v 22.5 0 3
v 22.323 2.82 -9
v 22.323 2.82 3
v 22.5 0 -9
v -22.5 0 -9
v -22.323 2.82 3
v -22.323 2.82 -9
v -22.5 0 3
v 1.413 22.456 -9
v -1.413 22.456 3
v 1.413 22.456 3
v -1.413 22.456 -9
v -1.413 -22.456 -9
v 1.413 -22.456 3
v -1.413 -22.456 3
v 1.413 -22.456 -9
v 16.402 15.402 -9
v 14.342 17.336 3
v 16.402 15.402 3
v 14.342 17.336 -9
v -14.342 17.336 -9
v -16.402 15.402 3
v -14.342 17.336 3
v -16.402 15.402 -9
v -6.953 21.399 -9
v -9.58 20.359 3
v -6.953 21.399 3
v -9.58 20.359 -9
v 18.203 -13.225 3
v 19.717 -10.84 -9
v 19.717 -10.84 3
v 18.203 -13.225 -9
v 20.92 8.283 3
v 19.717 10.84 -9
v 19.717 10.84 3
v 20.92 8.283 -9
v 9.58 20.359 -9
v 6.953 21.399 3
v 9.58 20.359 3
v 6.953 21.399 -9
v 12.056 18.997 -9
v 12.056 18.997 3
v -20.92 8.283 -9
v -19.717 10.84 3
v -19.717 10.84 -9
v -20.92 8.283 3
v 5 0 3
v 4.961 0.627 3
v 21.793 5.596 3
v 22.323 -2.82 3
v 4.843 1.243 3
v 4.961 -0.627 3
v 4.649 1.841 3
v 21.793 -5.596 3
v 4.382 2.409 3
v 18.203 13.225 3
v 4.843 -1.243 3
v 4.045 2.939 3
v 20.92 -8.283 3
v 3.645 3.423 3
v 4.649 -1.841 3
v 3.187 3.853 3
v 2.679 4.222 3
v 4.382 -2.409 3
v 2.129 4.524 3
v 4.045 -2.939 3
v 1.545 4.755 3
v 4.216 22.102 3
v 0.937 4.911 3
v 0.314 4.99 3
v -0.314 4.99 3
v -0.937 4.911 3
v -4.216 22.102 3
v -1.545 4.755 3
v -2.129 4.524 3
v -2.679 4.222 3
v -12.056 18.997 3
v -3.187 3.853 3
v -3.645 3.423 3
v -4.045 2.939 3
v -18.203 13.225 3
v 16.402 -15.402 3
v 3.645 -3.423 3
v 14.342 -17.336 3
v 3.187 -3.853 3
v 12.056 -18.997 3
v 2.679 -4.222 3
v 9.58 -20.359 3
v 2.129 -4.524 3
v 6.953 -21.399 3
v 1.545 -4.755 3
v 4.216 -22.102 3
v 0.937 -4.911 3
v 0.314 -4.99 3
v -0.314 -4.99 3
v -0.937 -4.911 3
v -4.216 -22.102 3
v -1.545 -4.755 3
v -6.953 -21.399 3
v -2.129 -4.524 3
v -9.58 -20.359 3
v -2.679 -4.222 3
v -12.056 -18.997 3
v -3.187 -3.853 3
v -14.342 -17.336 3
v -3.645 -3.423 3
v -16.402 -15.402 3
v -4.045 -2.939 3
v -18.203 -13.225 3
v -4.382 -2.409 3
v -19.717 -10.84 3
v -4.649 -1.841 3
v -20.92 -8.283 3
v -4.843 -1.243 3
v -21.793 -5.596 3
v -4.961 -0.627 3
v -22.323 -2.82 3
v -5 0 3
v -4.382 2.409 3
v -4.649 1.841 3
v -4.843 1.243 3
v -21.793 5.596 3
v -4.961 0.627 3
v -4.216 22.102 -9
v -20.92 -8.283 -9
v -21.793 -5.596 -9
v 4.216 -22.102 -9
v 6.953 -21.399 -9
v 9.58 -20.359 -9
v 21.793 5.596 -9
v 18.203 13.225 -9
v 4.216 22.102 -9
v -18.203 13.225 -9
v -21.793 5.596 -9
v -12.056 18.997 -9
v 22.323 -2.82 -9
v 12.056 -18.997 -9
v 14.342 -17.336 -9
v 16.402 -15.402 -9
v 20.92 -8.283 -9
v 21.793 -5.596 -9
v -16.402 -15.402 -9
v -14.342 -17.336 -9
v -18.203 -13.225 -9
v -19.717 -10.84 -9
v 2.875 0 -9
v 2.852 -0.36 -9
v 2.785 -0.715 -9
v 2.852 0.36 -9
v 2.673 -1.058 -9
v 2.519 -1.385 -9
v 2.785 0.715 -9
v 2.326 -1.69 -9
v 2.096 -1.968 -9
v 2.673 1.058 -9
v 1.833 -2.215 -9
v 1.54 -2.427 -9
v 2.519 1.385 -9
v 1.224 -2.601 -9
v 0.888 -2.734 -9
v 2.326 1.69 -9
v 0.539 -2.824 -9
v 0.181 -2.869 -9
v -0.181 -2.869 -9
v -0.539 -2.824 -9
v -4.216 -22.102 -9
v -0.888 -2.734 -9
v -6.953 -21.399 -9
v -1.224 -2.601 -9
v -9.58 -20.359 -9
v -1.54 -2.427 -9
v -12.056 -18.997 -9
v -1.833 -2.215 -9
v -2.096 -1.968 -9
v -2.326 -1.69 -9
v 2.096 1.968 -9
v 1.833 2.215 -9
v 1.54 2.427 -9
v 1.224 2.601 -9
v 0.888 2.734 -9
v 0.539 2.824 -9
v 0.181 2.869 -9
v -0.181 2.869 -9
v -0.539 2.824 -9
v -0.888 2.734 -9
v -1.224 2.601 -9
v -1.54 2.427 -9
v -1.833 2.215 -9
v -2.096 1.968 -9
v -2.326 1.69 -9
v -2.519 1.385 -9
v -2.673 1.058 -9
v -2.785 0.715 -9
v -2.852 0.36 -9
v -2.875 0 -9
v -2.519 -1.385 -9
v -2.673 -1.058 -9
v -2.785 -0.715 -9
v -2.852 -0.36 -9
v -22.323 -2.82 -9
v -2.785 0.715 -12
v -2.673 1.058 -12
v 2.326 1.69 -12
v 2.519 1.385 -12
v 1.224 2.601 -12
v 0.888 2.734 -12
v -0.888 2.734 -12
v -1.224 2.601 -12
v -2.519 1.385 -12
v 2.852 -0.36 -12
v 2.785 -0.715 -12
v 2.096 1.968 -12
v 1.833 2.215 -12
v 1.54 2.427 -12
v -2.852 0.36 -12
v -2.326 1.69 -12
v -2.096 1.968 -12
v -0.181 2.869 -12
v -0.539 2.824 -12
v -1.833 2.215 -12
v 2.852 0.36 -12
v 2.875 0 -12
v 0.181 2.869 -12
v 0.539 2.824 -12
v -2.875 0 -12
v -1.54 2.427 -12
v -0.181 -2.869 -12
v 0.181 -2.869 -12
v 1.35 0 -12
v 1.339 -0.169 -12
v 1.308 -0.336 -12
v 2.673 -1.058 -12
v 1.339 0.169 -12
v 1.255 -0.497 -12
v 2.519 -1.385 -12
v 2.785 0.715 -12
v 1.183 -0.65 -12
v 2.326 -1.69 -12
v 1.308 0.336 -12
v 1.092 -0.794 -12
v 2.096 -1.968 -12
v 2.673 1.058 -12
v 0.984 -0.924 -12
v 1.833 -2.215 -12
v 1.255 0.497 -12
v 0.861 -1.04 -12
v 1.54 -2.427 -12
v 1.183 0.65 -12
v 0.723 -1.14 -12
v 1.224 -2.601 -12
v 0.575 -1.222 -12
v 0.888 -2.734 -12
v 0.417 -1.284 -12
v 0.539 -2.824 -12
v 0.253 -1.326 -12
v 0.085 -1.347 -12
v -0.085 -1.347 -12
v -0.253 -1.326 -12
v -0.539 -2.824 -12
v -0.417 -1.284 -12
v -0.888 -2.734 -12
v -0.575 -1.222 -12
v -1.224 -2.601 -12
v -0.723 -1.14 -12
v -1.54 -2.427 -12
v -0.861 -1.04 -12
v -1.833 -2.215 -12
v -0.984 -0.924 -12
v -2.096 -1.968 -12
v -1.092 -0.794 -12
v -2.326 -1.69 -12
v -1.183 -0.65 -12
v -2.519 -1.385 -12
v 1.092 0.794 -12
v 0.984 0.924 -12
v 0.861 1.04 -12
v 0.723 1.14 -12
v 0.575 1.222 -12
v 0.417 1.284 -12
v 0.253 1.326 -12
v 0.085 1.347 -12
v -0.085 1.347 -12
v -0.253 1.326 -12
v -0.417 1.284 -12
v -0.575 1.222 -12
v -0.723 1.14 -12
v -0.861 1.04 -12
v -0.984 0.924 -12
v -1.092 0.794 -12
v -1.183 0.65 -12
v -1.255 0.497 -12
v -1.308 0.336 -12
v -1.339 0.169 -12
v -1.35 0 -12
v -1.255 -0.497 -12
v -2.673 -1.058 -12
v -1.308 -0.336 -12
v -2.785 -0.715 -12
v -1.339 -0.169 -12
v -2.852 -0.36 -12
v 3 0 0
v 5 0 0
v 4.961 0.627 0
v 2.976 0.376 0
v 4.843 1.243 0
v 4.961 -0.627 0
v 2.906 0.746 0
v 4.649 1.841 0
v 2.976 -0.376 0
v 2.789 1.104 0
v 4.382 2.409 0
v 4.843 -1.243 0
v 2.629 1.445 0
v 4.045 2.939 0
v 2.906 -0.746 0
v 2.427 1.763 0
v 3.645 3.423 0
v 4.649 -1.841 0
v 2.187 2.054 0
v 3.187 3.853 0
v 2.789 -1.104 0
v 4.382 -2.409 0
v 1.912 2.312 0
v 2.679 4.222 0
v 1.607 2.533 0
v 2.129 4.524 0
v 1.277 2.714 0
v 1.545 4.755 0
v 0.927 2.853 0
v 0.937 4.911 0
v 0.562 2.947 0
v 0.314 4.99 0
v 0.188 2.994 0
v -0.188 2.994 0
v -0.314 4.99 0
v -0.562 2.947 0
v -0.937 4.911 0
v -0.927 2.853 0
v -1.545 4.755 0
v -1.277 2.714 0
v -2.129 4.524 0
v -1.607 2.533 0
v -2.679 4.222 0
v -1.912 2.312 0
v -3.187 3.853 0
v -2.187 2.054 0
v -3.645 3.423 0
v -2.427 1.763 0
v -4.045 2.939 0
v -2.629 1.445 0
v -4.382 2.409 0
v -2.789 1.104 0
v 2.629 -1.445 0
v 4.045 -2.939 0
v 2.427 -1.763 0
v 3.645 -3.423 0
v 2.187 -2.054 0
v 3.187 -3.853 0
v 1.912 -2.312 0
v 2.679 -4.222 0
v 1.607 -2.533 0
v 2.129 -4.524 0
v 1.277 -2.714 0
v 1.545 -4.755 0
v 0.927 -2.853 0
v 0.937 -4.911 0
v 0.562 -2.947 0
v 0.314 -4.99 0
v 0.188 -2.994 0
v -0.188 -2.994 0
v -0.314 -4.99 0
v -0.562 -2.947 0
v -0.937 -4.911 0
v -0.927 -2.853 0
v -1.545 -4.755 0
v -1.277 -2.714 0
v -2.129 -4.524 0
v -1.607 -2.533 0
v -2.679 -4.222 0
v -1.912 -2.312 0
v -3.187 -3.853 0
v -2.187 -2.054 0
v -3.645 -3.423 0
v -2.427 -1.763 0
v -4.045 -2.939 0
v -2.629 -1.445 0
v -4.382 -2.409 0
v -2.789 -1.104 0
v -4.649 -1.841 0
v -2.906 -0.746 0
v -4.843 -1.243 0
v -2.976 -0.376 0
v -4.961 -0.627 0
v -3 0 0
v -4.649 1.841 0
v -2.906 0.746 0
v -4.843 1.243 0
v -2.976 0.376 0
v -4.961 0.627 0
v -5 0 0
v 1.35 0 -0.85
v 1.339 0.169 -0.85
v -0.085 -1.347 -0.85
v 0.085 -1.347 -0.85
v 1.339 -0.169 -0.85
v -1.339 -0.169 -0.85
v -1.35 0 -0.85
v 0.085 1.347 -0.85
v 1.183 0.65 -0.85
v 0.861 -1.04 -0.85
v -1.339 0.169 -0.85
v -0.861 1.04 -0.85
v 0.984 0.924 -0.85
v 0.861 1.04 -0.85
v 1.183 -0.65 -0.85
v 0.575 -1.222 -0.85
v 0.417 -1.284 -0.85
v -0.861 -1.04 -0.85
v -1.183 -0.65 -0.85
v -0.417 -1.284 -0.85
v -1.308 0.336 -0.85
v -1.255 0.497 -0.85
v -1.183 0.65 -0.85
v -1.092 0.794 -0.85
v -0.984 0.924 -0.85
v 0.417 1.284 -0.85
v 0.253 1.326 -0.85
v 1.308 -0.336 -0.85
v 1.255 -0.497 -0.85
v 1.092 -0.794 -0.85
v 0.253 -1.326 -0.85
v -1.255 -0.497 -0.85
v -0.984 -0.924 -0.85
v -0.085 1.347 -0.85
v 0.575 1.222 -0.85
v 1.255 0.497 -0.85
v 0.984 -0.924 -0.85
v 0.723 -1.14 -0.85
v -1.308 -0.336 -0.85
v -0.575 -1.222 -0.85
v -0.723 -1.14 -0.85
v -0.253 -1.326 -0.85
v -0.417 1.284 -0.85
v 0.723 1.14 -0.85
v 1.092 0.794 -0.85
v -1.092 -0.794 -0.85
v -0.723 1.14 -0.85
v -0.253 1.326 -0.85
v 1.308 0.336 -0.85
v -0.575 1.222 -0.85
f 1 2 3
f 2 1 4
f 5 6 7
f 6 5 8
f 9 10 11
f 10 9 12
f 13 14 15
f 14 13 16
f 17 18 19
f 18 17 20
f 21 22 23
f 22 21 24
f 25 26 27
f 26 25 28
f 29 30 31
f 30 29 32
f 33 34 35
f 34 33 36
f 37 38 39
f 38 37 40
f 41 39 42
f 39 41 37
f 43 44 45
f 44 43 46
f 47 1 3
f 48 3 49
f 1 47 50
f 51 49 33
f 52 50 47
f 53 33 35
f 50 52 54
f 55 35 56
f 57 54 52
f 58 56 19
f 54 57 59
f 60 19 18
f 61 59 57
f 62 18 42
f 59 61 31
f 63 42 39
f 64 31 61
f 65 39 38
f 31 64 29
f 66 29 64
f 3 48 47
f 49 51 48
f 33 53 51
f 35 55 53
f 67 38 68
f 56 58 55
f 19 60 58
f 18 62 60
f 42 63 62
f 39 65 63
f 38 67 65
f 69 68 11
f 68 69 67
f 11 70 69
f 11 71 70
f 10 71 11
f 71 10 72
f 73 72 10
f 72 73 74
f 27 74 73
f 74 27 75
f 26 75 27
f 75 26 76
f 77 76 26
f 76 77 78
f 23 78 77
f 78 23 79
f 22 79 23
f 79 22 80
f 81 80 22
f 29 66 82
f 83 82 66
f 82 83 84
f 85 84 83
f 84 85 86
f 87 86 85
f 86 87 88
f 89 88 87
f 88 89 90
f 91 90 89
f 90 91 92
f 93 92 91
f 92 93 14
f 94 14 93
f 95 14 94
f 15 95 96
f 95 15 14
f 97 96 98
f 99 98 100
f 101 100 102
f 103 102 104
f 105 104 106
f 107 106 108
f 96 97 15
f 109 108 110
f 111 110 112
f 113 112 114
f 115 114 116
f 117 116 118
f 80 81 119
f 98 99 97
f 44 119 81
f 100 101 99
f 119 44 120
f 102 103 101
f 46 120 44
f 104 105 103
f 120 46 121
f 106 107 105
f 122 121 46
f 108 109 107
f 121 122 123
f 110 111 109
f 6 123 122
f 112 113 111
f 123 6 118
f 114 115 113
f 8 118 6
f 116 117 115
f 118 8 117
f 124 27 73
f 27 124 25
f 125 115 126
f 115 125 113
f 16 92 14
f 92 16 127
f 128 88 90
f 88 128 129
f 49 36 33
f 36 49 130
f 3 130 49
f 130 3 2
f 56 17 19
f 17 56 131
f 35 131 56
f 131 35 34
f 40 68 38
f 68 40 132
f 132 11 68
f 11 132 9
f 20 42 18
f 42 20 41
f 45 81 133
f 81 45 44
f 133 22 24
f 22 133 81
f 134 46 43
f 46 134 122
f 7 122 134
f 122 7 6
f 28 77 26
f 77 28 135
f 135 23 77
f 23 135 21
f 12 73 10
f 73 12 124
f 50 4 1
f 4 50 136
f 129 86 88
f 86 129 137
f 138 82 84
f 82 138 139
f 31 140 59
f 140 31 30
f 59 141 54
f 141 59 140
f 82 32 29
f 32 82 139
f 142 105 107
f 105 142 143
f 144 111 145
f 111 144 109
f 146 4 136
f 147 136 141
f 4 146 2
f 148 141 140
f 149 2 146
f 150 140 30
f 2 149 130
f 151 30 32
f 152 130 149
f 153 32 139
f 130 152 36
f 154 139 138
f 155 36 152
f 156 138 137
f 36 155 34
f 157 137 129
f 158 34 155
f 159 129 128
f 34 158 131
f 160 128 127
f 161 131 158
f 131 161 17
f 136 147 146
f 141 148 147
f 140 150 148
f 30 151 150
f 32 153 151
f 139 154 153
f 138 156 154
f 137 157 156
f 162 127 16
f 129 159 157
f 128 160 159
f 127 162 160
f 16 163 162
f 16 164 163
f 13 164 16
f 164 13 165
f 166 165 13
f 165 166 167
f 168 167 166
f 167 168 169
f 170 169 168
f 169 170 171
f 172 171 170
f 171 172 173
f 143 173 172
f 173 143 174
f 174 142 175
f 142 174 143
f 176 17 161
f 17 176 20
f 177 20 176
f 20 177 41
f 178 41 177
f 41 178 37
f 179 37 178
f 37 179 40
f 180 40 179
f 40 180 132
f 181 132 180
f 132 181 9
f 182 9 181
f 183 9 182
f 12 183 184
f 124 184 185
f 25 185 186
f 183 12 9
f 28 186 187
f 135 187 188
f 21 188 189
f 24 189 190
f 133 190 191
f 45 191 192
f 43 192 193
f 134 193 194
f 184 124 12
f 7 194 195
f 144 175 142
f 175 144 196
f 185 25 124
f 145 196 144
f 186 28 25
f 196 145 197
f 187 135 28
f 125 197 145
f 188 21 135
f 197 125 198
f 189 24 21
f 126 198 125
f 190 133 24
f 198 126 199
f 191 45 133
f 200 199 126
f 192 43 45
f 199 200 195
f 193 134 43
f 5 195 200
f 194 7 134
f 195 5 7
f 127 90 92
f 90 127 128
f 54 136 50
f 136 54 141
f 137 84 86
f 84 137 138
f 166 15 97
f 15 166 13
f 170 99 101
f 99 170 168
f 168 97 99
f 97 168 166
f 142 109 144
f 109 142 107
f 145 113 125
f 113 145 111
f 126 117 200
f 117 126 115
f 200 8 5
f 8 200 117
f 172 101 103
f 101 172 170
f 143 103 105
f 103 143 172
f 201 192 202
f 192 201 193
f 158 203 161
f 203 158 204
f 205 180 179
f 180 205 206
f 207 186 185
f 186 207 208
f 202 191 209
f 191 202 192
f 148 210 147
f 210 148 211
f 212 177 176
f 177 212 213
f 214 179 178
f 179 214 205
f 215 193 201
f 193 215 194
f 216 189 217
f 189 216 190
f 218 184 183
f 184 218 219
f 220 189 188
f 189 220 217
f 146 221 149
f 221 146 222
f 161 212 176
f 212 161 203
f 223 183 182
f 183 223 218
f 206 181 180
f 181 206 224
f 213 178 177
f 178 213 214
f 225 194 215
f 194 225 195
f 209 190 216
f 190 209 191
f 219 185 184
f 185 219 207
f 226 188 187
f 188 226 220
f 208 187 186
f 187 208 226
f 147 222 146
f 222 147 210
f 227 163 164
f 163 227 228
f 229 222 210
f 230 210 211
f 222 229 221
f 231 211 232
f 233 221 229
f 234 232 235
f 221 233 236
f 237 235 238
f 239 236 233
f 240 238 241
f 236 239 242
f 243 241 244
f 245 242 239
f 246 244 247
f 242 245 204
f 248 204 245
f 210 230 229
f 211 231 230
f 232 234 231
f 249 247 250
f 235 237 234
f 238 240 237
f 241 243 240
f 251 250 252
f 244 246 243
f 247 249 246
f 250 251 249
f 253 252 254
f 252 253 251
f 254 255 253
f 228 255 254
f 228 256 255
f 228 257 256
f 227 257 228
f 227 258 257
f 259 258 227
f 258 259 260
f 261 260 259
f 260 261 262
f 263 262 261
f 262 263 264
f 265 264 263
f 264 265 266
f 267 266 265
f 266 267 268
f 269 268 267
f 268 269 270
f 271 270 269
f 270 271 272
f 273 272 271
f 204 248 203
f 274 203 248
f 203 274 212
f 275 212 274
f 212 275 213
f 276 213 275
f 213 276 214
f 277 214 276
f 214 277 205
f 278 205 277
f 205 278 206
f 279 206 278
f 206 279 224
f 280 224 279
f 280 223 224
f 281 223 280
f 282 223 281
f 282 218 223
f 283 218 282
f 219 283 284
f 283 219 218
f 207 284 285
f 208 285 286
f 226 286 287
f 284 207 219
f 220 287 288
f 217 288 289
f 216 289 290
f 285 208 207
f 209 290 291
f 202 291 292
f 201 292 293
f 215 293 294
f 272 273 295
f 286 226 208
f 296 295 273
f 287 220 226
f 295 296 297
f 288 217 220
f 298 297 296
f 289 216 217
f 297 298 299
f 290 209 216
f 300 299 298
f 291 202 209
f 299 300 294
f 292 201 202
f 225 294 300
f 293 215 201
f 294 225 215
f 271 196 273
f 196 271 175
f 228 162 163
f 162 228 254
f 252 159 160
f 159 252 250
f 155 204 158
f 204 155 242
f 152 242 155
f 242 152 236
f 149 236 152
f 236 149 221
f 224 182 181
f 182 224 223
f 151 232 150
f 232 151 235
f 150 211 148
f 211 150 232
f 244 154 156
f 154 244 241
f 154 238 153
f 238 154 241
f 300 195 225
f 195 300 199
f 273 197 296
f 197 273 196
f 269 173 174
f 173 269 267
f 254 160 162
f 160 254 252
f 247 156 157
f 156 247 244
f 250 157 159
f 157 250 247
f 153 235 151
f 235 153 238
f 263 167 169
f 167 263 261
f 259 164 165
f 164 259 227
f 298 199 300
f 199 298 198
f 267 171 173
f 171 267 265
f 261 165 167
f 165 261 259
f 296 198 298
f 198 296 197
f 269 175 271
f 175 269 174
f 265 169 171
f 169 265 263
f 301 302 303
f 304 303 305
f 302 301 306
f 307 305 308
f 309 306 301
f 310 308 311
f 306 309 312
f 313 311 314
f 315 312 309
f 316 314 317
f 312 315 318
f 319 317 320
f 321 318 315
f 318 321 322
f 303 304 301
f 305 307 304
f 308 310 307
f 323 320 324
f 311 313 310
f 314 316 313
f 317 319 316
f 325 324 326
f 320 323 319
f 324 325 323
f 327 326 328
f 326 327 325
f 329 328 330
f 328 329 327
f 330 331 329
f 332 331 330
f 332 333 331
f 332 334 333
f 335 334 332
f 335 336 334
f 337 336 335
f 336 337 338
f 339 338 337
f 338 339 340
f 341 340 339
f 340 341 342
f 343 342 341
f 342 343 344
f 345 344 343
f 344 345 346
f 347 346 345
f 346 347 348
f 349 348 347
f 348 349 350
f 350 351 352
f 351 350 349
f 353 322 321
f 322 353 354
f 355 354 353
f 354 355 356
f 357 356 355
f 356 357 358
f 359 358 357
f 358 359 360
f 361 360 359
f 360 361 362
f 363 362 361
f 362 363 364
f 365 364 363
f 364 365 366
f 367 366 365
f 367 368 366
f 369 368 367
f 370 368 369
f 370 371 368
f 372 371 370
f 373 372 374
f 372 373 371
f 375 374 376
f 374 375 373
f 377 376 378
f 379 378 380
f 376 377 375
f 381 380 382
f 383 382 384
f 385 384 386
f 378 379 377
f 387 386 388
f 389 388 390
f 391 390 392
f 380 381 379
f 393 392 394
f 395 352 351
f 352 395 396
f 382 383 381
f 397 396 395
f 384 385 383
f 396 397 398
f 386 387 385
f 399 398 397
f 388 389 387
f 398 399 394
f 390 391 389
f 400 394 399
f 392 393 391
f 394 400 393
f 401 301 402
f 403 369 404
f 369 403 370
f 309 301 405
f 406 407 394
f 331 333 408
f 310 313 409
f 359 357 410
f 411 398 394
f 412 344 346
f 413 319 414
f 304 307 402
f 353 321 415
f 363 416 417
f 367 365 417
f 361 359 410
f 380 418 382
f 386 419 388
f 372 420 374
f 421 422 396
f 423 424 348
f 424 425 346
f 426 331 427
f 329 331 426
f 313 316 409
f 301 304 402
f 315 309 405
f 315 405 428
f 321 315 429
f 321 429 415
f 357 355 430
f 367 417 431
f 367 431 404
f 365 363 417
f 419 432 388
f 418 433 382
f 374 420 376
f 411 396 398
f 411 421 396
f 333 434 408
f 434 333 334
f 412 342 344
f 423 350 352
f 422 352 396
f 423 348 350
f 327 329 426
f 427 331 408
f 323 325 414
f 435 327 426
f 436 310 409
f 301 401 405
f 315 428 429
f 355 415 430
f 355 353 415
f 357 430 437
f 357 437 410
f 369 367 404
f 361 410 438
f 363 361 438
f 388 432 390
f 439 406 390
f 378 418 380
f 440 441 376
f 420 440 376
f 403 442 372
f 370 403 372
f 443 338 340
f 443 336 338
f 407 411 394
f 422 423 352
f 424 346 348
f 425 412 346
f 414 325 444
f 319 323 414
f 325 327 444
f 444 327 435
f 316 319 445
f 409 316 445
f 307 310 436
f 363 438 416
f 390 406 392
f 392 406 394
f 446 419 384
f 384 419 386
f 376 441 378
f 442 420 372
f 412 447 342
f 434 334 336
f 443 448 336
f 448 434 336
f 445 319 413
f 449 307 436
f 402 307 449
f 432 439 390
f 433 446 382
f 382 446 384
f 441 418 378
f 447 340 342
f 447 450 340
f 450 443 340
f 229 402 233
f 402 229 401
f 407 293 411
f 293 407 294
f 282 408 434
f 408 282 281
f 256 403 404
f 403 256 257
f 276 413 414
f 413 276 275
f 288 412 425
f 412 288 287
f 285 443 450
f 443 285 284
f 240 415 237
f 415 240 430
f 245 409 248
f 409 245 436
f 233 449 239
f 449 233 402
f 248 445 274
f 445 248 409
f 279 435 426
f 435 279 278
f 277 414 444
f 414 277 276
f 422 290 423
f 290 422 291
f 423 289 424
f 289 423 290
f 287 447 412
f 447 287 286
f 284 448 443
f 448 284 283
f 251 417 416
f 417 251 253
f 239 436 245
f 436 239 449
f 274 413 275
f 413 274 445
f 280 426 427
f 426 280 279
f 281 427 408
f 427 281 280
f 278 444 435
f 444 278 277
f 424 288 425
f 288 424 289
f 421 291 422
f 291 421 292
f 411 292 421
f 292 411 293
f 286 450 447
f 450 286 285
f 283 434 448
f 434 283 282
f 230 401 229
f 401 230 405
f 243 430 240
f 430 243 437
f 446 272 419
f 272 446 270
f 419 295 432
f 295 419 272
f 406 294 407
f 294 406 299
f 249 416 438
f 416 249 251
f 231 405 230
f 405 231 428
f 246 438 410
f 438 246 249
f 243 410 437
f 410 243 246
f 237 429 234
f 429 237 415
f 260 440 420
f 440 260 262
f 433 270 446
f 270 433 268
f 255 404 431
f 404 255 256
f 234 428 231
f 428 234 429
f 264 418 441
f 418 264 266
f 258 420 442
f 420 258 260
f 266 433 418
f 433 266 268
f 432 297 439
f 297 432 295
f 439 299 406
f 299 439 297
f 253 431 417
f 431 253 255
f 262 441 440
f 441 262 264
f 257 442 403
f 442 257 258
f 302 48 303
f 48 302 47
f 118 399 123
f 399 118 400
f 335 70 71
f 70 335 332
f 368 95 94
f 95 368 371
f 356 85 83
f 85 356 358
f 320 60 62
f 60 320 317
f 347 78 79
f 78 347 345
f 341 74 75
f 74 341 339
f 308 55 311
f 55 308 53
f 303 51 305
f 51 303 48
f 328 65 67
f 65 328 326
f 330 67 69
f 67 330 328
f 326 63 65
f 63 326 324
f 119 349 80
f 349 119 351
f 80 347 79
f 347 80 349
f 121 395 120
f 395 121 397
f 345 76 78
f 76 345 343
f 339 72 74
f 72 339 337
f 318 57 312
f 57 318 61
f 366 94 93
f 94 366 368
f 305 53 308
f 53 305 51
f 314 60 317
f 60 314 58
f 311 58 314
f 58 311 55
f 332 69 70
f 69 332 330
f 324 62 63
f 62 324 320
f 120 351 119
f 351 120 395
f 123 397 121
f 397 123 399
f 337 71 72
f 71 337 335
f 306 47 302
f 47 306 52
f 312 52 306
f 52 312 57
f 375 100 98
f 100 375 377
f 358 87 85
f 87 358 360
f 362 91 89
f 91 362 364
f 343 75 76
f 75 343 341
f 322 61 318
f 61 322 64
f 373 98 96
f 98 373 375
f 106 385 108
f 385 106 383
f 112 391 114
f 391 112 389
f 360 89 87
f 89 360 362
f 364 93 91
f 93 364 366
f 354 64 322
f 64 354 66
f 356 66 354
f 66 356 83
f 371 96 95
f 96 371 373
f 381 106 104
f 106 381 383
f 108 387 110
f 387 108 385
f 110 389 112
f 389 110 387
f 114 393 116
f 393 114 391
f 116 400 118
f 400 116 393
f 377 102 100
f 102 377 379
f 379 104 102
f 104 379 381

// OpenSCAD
$fn = 50;


difference() {
	union() {
		translate(v = [0, 0, -9.0000000000]) {
			cylinder(h = 12, r = 22.5000000000);
		}
		#translate(v = [0, 0, -12.0000000000]) {
			cylinder(h = 12, r = 2.8750000000);
		}
	}
	union() {
		translate(v = [0, 0, 0]) {
			rotate(a = [0, 0, 0]) {
				difference() {
					union() {
						translate(v = [0, 0, -12.0000000000]) {
							cylinder(h = 12, r = 1.0000000000);
						}
						translate(v = [0, 0, -0.8500000000]) {
							cylinder(h = 0.8500000000, r1 = 1.3500000000, r2 = 3.0000000000);
						}
						translate(v = [0, 0, -12.0000000000]) {
							cylinder(h = 12, r = 1.3500000000);
						}
						translate(v = [0, 0, -12.0000000000]) {
							cylinder(h = 12, r = 1.0000000000);
						}
					}
					union();
				}
			}
		}
		#cylinder(h = 3, r = 5.0000000000);
	}
}
